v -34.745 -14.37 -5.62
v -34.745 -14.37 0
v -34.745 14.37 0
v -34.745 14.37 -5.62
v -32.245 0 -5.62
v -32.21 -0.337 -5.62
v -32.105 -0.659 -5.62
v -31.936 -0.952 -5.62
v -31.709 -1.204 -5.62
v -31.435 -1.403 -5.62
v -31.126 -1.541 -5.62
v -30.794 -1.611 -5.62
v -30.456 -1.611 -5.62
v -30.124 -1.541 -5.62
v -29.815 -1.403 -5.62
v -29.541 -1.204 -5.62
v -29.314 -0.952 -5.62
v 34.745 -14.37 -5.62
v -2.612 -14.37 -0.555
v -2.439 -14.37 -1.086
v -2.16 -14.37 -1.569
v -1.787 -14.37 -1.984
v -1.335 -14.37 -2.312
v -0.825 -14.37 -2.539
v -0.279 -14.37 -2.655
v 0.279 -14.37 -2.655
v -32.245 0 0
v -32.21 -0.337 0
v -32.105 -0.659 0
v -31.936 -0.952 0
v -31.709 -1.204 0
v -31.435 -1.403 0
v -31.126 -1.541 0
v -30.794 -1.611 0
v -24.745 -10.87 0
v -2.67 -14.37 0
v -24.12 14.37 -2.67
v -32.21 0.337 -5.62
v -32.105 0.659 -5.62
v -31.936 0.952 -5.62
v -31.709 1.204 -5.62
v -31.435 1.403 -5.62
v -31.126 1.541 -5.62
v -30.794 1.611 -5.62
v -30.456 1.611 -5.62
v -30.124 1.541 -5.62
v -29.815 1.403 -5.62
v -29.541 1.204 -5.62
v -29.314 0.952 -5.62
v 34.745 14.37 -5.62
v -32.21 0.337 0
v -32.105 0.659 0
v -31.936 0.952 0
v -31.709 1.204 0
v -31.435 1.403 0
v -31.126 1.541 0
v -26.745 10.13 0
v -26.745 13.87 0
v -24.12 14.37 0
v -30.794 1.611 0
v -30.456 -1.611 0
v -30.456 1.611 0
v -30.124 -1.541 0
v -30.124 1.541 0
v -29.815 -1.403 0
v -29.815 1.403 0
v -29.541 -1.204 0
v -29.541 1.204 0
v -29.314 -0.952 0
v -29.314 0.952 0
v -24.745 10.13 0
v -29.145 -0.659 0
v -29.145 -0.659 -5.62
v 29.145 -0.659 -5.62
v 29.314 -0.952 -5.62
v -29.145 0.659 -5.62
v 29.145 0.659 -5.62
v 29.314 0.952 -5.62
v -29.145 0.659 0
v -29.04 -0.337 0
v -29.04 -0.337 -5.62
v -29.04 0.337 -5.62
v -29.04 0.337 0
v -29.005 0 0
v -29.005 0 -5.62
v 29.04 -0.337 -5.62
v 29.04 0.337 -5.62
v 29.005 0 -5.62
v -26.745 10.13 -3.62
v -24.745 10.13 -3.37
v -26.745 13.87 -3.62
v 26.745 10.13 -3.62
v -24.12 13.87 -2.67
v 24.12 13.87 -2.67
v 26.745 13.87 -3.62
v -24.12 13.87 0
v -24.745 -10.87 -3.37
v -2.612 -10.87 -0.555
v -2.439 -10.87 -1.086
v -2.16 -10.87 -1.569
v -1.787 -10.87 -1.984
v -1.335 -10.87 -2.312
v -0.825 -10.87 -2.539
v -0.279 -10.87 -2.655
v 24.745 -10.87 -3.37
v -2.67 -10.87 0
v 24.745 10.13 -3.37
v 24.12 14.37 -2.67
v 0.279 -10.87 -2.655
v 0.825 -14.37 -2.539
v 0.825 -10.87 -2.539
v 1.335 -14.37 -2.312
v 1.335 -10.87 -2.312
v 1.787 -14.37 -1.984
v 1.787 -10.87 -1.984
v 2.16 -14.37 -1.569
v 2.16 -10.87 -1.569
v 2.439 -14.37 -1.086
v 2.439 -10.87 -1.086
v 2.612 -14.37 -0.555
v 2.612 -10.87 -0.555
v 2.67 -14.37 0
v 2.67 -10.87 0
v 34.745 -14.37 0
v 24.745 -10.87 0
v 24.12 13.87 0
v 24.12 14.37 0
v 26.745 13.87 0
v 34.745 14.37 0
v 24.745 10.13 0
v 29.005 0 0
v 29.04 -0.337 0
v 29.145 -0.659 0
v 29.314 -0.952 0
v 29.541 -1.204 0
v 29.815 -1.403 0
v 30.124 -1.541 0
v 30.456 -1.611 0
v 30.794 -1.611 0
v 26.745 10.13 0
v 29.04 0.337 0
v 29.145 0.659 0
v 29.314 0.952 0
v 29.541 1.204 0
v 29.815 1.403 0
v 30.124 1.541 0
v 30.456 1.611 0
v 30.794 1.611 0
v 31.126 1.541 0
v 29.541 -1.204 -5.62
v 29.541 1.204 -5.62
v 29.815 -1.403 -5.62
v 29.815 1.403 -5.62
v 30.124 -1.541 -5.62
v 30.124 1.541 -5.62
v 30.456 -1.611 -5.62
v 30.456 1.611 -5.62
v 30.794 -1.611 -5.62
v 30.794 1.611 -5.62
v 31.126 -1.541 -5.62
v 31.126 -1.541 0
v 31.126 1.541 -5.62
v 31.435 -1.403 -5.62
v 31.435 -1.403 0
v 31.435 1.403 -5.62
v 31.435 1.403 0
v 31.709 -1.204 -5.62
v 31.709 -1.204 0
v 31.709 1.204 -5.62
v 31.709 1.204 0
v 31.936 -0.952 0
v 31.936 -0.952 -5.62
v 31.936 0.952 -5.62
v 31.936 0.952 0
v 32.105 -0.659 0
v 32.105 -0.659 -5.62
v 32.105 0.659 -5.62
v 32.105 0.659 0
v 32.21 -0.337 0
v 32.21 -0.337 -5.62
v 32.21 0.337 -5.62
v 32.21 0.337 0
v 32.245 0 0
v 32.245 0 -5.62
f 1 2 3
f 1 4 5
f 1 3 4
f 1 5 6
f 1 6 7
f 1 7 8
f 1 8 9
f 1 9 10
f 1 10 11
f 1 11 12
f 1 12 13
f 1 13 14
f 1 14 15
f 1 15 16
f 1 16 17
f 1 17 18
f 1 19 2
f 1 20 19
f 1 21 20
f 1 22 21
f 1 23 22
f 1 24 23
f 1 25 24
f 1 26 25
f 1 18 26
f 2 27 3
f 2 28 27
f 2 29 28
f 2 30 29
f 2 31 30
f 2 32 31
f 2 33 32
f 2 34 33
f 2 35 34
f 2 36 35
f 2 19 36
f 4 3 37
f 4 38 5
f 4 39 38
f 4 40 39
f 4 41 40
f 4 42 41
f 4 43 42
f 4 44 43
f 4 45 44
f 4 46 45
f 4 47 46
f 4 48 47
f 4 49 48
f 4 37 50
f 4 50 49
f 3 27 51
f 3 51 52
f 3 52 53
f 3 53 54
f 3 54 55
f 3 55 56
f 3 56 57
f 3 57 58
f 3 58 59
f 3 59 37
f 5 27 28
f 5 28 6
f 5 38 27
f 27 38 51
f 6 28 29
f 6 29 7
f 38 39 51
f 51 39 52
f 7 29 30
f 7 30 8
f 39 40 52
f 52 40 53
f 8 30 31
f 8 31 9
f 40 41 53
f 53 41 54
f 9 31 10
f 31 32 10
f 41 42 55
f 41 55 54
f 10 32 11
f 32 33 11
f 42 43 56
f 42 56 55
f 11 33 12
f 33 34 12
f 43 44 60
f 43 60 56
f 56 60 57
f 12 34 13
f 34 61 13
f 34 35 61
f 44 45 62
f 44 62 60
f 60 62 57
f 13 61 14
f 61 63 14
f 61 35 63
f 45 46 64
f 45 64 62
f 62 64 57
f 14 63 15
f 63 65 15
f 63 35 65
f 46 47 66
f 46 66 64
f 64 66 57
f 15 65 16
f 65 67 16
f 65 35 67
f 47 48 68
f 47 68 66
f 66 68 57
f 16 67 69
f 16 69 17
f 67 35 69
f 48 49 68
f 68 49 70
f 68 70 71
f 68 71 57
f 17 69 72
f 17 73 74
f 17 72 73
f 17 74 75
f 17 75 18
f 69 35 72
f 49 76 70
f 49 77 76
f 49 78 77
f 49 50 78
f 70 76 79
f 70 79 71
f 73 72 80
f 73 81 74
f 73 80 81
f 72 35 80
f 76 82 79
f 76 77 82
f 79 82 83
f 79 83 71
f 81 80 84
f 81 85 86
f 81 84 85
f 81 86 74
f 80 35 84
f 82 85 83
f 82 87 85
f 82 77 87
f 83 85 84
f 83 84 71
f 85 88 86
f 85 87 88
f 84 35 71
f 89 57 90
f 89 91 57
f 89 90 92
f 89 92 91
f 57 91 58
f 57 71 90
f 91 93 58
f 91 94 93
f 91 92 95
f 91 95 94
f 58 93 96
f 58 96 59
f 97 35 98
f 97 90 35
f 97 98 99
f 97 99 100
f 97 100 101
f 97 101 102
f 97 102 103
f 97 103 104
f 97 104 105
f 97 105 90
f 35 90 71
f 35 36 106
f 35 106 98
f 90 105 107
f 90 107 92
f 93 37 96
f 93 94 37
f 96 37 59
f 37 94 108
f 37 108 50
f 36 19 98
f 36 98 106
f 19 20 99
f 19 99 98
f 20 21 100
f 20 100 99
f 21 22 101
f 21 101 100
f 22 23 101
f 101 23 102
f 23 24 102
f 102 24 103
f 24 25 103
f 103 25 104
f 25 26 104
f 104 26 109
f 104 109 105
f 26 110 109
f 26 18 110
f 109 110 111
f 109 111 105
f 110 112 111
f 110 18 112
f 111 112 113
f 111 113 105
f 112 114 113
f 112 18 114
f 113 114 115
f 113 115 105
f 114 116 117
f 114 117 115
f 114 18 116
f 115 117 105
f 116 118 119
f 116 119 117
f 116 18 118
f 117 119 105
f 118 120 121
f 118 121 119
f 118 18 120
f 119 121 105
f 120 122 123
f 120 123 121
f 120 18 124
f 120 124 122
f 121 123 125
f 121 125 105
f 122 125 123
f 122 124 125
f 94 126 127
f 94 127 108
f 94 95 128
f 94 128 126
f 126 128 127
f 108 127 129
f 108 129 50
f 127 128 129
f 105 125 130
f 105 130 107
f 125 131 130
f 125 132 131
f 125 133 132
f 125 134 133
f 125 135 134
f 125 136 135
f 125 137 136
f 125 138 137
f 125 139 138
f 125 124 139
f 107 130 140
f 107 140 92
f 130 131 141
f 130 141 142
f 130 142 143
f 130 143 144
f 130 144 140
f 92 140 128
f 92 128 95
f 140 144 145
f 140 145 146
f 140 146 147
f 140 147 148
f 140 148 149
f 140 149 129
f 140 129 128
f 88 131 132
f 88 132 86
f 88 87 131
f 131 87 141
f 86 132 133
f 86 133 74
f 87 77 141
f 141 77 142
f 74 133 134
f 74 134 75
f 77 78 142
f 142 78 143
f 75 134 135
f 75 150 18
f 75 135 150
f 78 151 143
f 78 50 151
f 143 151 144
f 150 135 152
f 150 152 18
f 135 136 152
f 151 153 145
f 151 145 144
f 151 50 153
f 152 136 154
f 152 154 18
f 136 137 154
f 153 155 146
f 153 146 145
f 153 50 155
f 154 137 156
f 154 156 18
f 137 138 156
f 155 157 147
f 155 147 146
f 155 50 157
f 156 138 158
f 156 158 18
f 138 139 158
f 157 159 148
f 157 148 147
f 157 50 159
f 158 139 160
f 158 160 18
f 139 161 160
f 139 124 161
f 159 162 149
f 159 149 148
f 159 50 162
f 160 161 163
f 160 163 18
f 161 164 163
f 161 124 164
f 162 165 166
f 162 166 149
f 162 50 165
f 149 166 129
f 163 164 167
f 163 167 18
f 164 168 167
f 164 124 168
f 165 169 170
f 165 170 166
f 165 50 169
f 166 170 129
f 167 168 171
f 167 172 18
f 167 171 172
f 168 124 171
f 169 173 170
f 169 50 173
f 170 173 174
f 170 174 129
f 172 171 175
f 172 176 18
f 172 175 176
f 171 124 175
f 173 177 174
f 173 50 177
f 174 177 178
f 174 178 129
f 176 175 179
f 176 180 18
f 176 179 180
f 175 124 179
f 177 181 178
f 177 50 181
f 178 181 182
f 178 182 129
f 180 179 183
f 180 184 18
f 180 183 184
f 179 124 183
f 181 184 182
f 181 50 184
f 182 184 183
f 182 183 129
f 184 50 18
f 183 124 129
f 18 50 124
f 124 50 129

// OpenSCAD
// a connector housing for the EEG electrode harness
// CC BY SA 4.0 Andre M Chagas 04/04/2022

conThick = 5.6;
conLen = 48;
conHei = 5.1;



bodyThick = 3.5;
bodyLen = 53.25;
bodyHei = 7;

tol = 0.12;
$fn=30;

screwD = 3;
cableD=5.1;

module connector(){
    translate([0,conThick-2,0]){
    cube([conLen+2*tol,conThick+2*tol,conHei+2*tol],center=true);
    }//end translate
    cube([bodyLen+2*tol,bodyThick+2*tol,bodyHei+2*tol],center=true);
    
   
}//end module

module housing(){
difference(){
cube([bodyLen+2*tol+2*screwD+10,bodyThick+2*tol+25,bodyHei+2*tol+4],center =true);

translate([0,+12,0]){
    connector();
}//end translate
translate([0,0,0]){
    cube([bodyLen+2*tol-4,bodyThick+2*tol+18,bodyHei+2*tol-0.5],center=true);
}//end translate
//translate([2,2,3]){
//cube([bodyLen+2*tol,bodyThick+2*tol+10,bodyHei-2]);
//}//end translate
translate([bodyLen/2+4,0,-8]){
    cylinder(d=screwD+2*tol,h=bodyHei+10);
}//end translate

translate([-(bodyLen/2+4),0,-8]){
    cylinder(d=screwD+2*tol,h=bodyHei+10);
}//end translate

translate([0,-5,0]){
rotate([90,0,0]){
    cylinder(d=cableD+2*tol,h=10);
    }//end rotate
}//end translate
}//end difference
}//end module

difference(){
housing();
translate([0,0,(bodyHei+2*tol+4)/2]){
cube([bodyLen+2*tol+2*screwD+11,bodyThick+2*tol+26,bodyHei+2*tol+4],center =true);
}
}//end difference()
